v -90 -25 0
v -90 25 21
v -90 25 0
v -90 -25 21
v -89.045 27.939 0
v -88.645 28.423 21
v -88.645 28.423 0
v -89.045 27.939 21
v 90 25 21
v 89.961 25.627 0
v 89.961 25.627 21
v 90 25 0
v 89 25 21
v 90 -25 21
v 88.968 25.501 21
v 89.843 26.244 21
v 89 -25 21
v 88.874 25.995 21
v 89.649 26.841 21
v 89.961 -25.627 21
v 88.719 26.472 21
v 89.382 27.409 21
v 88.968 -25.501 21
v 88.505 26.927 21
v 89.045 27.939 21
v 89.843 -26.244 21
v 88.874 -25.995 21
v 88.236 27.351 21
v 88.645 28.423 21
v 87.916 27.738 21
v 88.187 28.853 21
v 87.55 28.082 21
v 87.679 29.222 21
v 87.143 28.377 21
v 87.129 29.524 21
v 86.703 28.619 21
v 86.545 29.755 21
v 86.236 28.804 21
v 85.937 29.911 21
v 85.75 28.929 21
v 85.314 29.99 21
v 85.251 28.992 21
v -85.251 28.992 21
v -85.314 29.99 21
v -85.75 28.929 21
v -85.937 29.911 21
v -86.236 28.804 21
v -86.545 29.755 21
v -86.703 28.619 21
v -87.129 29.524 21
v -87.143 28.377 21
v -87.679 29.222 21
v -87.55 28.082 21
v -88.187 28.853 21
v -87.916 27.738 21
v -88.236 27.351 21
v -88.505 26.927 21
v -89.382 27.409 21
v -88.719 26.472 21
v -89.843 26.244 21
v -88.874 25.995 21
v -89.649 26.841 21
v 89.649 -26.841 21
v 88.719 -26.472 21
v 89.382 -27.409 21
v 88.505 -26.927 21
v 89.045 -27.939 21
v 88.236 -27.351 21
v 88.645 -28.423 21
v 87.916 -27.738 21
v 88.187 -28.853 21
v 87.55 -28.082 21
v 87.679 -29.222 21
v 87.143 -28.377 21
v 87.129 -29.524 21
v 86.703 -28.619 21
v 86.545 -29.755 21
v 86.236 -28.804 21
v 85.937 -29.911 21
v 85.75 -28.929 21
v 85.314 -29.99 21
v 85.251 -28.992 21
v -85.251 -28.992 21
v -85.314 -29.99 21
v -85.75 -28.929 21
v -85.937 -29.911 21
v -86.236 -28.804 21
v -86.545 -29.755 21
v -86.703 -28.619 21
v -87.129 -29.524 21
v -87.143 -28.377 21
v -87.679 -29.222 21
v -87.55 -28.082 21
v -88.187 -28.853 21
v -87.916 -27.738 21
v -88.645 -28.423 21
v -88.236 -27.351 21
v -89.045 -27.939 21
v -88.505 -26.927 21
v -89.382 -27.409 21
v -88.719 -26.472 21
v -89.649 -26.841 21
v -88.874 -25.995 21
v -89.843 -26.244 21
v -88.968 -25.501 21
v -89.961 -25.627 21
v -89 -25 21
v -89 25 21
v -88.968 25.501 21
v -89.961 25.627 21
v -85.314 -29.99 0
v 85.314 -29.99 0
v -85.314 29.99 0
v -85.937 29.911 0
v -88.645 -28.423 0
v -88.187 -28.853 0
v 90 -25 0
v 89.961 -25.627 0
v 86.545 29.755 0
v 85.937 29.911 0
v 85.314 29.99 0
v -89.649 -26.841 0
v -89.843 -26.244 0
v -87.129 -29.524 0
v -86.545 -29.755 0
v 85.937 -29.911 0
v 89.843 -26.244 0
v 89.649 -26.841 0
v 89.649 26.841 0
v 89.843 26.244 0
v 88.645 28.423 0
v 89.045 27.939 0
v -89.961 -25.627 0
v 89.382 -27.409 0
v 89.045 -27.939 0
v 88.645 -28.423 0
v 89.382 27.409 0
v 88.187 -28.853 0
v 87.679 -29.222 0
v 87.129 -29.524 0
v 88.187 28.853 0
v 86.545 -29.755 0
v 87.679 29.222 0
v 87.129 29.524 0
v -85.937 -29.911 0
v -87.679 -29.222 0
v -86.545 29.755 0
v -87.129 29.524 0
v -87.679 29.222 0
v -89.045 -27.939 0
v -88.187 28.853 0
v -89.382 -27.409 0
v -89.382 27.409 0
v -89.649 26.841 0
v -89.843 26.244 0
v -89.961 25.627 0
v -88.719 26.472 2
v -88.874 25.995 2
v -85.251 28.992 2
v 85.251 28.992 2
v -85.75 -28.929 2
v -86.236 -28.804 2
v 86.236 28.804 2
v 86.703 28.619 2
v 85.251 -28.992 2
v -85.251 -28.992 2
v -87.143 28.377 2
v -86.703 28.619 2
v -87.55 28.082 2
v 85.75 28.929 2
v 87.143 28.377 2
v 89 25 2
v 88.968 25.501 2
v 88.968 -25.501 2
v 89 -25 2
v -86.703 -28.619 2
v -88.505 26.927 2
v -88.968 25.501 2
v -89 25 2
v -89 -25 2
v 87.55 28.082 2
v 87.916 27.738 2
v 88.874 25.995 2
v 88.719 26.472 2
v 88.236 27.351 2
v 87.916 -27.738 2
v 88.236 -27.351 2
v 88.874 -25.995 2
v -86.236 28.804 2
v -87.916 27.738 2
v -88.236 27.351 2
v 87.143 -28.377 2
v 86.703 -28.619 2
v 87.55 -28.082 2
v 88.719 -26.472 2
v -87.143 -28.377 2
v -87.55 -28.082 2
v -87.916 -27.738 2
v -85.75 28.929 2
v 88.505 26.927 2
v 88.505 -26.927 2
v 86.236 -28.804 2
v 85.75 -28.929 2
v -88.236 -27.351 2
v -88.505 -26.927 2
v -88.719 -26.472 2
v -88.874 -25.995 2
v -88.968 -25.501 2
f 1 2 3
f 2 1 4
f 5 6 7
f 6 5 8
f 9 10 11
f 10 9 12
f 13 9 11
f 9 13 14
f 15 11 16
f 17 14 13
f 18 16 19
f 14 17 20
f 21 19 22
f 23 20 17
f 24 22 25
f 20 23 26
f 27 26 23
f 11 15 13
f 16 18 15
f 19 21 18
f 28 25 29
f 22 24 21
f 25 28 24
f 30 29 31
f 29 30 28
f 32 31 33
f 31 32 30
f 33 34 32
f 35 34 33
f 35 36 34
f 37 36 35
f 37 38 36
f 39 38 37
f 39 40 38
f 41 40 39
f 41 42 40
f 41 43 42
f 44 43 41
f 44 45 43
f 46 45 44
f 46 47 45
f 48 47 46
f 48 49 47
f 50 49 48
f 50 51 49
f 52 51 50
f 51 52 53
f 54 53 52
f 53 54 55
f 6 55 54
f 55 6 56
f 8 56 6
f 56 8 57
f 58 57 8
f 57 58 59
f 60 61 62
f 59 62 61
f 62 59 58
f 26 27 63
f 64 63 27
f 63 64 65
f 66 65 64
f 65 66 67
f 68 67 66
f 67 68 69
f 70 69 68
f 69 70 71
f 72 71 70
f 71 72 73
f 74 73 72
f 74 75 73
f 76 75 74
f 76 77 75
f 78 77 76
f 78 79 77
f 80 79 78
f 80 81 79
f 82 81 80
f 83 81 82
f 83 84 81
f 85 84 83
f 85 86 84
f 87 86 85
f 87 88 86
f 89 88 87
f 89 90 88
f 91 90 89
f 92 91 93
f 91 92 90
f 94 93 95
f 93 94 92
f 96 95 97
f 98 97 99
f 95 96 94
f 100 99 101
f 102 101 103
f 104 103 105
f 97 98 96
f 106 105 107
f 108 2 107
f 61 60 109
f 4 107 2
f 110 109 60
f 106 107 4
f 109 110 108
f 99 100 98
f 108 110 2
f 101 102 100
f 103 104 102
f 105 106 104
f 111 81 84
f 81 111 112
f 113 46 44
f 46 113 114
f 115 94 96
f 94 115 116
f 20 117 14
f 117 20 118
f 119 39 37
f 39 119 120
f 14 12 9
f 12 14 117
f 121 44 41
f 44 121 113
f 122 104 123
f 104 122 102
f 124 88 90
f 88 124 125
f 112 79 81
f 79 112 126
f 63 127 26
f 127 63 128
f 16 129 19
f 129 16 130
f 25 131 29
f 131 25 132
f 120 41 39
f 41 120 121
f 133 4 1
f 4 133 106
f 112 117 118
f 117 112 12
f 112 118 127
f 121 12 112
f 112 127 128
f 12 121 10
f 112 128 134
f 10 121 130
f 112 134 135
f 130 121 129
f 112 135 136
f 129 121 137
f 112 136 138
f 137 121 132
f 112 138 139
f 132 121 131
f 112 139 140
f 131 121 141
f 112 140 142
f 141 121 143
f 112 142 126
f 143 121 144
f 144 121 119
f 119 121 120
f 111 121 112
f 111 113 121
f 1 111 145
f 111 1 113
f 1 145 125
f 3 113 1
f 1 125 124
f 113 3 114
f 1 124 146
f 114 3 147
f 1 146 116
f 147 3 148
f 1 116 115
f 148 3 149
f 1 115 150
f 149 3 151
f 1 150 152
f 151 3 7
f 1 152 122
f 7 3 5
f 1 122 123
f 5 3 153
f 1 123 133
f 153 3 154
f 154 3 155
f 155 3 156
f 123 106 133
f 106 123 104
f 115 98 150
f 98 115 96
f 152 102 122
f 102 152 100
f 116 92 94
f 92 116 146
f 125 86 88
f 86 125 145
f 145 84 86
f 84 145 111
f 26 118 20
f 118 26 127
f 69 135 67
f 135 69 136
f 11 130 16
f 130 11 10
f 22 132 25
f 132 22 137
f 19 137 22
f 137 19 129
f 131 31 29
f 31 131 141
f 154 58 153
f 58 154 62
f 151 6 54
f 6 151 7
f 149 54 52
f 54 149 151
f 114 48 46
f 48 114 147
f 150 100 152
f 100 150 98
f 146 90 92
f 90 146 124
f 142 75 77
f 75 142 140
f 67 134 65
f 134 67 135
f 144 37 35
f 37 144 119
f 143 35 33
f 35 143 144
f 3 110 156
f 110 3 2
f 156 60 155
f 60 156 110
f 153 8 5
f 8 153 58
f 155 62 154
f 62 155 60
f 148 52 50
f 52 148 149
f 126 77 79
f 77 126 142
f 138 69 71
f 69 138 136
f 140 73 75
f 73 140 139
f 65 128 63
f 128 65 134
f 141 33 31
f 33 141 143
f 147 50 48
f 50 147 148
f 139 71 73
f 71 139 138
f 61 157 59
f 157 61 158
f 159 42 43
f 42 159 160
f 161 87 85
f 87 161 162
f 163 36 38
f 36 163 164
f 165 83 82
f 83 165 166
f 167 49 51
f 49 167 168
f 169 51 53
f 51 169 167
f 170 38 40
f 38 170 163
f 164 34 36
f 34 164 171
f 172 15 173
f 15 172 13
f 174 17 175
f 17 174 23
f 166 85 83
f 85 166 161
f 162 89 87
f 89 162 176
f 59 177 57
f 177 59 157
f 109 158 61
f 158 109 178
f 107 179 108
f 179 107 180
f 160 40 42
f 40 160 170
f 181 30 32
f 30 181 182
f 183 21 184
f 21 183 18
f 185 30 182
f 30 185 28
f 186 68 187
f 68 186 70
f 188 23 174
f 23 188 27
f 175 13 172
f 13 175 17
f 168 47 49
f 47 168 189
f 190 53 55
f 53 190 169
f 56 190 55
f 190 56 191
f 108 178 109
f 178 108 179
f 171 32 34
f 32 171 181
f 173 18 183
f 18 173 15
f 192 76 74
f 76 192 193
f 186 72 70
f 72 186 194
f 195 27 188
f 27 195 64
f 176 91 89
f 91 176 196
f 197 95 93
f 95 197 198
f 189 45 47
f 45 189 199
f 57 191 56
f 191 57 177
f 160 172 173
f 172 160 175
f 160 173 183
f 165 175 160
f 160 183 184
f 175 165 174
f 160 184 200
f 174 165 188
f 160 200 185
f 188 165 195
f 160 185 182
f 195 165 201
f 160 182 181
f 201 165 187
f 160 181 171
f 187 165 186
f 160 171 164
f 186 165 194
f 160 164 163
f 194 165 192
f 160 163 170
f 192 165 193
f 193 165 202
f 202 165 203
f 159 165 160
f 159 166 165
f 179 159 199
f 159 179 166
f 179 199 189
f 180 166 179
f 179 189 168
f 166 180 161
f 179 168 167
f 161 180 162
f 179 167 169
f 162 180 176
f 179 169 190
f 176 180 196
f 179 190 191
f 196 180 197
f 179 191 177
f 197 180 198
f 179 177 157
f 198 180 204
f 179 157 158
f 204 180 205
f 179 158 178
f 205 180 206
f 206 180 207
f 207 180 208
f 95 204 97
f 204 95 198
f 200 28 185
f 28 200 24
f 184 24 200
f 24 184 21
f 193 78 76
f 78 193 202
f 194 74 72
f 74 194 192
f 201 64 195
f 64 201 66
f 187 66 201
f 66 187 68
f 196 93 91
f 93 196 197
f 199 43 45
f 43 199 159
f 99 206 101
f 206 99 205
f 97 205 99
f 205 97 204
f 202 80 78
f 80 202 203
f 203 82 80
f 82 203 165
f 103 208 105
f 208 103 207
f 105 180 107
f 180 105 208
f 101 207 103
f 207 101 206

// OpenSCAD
$fn = 50;


difference() {
	union() {
		hull() {
			translate(v = [-85.0000000000, 25.0000000000, 0]) {
				cylinder(h = 21, r = 5);
			}
			translate(v = [85.0000000000, 25.0000000000, 0]) {
				cylinder(h = 21, r = 5);
			}
			translate(v = [-85.0000000000, -25.0000000000, 0]) {
				cylinder(h = 21, r = 5);
			}
			translate(v = [85.0000000000, -25.0000000000, 0]) {
				cylinder(h = 21, r = 5);
			}
		}
	}
	union() {
		translate(v = [0, 0, 2]) {
			hull() {
				translate(v = [-85.0000000000, 25.0000000000, 0]) {
					cylinder(h = 19, r = 4);
				}
				translate(v = [85.0000000000, 25.0000000000, 0]) {
					cylinder(h = 19, r = 4);
				}
				translate(v = [-85.0000000000, -25.0000000000, 0]) {
					cylinder(h = 19, r = 4);
				}
				translate(v = [85.0000000000, -25.0000000000, 0]) {
					cylinder(h = 19, r = 4);
				}
			}
		}
	}
}
